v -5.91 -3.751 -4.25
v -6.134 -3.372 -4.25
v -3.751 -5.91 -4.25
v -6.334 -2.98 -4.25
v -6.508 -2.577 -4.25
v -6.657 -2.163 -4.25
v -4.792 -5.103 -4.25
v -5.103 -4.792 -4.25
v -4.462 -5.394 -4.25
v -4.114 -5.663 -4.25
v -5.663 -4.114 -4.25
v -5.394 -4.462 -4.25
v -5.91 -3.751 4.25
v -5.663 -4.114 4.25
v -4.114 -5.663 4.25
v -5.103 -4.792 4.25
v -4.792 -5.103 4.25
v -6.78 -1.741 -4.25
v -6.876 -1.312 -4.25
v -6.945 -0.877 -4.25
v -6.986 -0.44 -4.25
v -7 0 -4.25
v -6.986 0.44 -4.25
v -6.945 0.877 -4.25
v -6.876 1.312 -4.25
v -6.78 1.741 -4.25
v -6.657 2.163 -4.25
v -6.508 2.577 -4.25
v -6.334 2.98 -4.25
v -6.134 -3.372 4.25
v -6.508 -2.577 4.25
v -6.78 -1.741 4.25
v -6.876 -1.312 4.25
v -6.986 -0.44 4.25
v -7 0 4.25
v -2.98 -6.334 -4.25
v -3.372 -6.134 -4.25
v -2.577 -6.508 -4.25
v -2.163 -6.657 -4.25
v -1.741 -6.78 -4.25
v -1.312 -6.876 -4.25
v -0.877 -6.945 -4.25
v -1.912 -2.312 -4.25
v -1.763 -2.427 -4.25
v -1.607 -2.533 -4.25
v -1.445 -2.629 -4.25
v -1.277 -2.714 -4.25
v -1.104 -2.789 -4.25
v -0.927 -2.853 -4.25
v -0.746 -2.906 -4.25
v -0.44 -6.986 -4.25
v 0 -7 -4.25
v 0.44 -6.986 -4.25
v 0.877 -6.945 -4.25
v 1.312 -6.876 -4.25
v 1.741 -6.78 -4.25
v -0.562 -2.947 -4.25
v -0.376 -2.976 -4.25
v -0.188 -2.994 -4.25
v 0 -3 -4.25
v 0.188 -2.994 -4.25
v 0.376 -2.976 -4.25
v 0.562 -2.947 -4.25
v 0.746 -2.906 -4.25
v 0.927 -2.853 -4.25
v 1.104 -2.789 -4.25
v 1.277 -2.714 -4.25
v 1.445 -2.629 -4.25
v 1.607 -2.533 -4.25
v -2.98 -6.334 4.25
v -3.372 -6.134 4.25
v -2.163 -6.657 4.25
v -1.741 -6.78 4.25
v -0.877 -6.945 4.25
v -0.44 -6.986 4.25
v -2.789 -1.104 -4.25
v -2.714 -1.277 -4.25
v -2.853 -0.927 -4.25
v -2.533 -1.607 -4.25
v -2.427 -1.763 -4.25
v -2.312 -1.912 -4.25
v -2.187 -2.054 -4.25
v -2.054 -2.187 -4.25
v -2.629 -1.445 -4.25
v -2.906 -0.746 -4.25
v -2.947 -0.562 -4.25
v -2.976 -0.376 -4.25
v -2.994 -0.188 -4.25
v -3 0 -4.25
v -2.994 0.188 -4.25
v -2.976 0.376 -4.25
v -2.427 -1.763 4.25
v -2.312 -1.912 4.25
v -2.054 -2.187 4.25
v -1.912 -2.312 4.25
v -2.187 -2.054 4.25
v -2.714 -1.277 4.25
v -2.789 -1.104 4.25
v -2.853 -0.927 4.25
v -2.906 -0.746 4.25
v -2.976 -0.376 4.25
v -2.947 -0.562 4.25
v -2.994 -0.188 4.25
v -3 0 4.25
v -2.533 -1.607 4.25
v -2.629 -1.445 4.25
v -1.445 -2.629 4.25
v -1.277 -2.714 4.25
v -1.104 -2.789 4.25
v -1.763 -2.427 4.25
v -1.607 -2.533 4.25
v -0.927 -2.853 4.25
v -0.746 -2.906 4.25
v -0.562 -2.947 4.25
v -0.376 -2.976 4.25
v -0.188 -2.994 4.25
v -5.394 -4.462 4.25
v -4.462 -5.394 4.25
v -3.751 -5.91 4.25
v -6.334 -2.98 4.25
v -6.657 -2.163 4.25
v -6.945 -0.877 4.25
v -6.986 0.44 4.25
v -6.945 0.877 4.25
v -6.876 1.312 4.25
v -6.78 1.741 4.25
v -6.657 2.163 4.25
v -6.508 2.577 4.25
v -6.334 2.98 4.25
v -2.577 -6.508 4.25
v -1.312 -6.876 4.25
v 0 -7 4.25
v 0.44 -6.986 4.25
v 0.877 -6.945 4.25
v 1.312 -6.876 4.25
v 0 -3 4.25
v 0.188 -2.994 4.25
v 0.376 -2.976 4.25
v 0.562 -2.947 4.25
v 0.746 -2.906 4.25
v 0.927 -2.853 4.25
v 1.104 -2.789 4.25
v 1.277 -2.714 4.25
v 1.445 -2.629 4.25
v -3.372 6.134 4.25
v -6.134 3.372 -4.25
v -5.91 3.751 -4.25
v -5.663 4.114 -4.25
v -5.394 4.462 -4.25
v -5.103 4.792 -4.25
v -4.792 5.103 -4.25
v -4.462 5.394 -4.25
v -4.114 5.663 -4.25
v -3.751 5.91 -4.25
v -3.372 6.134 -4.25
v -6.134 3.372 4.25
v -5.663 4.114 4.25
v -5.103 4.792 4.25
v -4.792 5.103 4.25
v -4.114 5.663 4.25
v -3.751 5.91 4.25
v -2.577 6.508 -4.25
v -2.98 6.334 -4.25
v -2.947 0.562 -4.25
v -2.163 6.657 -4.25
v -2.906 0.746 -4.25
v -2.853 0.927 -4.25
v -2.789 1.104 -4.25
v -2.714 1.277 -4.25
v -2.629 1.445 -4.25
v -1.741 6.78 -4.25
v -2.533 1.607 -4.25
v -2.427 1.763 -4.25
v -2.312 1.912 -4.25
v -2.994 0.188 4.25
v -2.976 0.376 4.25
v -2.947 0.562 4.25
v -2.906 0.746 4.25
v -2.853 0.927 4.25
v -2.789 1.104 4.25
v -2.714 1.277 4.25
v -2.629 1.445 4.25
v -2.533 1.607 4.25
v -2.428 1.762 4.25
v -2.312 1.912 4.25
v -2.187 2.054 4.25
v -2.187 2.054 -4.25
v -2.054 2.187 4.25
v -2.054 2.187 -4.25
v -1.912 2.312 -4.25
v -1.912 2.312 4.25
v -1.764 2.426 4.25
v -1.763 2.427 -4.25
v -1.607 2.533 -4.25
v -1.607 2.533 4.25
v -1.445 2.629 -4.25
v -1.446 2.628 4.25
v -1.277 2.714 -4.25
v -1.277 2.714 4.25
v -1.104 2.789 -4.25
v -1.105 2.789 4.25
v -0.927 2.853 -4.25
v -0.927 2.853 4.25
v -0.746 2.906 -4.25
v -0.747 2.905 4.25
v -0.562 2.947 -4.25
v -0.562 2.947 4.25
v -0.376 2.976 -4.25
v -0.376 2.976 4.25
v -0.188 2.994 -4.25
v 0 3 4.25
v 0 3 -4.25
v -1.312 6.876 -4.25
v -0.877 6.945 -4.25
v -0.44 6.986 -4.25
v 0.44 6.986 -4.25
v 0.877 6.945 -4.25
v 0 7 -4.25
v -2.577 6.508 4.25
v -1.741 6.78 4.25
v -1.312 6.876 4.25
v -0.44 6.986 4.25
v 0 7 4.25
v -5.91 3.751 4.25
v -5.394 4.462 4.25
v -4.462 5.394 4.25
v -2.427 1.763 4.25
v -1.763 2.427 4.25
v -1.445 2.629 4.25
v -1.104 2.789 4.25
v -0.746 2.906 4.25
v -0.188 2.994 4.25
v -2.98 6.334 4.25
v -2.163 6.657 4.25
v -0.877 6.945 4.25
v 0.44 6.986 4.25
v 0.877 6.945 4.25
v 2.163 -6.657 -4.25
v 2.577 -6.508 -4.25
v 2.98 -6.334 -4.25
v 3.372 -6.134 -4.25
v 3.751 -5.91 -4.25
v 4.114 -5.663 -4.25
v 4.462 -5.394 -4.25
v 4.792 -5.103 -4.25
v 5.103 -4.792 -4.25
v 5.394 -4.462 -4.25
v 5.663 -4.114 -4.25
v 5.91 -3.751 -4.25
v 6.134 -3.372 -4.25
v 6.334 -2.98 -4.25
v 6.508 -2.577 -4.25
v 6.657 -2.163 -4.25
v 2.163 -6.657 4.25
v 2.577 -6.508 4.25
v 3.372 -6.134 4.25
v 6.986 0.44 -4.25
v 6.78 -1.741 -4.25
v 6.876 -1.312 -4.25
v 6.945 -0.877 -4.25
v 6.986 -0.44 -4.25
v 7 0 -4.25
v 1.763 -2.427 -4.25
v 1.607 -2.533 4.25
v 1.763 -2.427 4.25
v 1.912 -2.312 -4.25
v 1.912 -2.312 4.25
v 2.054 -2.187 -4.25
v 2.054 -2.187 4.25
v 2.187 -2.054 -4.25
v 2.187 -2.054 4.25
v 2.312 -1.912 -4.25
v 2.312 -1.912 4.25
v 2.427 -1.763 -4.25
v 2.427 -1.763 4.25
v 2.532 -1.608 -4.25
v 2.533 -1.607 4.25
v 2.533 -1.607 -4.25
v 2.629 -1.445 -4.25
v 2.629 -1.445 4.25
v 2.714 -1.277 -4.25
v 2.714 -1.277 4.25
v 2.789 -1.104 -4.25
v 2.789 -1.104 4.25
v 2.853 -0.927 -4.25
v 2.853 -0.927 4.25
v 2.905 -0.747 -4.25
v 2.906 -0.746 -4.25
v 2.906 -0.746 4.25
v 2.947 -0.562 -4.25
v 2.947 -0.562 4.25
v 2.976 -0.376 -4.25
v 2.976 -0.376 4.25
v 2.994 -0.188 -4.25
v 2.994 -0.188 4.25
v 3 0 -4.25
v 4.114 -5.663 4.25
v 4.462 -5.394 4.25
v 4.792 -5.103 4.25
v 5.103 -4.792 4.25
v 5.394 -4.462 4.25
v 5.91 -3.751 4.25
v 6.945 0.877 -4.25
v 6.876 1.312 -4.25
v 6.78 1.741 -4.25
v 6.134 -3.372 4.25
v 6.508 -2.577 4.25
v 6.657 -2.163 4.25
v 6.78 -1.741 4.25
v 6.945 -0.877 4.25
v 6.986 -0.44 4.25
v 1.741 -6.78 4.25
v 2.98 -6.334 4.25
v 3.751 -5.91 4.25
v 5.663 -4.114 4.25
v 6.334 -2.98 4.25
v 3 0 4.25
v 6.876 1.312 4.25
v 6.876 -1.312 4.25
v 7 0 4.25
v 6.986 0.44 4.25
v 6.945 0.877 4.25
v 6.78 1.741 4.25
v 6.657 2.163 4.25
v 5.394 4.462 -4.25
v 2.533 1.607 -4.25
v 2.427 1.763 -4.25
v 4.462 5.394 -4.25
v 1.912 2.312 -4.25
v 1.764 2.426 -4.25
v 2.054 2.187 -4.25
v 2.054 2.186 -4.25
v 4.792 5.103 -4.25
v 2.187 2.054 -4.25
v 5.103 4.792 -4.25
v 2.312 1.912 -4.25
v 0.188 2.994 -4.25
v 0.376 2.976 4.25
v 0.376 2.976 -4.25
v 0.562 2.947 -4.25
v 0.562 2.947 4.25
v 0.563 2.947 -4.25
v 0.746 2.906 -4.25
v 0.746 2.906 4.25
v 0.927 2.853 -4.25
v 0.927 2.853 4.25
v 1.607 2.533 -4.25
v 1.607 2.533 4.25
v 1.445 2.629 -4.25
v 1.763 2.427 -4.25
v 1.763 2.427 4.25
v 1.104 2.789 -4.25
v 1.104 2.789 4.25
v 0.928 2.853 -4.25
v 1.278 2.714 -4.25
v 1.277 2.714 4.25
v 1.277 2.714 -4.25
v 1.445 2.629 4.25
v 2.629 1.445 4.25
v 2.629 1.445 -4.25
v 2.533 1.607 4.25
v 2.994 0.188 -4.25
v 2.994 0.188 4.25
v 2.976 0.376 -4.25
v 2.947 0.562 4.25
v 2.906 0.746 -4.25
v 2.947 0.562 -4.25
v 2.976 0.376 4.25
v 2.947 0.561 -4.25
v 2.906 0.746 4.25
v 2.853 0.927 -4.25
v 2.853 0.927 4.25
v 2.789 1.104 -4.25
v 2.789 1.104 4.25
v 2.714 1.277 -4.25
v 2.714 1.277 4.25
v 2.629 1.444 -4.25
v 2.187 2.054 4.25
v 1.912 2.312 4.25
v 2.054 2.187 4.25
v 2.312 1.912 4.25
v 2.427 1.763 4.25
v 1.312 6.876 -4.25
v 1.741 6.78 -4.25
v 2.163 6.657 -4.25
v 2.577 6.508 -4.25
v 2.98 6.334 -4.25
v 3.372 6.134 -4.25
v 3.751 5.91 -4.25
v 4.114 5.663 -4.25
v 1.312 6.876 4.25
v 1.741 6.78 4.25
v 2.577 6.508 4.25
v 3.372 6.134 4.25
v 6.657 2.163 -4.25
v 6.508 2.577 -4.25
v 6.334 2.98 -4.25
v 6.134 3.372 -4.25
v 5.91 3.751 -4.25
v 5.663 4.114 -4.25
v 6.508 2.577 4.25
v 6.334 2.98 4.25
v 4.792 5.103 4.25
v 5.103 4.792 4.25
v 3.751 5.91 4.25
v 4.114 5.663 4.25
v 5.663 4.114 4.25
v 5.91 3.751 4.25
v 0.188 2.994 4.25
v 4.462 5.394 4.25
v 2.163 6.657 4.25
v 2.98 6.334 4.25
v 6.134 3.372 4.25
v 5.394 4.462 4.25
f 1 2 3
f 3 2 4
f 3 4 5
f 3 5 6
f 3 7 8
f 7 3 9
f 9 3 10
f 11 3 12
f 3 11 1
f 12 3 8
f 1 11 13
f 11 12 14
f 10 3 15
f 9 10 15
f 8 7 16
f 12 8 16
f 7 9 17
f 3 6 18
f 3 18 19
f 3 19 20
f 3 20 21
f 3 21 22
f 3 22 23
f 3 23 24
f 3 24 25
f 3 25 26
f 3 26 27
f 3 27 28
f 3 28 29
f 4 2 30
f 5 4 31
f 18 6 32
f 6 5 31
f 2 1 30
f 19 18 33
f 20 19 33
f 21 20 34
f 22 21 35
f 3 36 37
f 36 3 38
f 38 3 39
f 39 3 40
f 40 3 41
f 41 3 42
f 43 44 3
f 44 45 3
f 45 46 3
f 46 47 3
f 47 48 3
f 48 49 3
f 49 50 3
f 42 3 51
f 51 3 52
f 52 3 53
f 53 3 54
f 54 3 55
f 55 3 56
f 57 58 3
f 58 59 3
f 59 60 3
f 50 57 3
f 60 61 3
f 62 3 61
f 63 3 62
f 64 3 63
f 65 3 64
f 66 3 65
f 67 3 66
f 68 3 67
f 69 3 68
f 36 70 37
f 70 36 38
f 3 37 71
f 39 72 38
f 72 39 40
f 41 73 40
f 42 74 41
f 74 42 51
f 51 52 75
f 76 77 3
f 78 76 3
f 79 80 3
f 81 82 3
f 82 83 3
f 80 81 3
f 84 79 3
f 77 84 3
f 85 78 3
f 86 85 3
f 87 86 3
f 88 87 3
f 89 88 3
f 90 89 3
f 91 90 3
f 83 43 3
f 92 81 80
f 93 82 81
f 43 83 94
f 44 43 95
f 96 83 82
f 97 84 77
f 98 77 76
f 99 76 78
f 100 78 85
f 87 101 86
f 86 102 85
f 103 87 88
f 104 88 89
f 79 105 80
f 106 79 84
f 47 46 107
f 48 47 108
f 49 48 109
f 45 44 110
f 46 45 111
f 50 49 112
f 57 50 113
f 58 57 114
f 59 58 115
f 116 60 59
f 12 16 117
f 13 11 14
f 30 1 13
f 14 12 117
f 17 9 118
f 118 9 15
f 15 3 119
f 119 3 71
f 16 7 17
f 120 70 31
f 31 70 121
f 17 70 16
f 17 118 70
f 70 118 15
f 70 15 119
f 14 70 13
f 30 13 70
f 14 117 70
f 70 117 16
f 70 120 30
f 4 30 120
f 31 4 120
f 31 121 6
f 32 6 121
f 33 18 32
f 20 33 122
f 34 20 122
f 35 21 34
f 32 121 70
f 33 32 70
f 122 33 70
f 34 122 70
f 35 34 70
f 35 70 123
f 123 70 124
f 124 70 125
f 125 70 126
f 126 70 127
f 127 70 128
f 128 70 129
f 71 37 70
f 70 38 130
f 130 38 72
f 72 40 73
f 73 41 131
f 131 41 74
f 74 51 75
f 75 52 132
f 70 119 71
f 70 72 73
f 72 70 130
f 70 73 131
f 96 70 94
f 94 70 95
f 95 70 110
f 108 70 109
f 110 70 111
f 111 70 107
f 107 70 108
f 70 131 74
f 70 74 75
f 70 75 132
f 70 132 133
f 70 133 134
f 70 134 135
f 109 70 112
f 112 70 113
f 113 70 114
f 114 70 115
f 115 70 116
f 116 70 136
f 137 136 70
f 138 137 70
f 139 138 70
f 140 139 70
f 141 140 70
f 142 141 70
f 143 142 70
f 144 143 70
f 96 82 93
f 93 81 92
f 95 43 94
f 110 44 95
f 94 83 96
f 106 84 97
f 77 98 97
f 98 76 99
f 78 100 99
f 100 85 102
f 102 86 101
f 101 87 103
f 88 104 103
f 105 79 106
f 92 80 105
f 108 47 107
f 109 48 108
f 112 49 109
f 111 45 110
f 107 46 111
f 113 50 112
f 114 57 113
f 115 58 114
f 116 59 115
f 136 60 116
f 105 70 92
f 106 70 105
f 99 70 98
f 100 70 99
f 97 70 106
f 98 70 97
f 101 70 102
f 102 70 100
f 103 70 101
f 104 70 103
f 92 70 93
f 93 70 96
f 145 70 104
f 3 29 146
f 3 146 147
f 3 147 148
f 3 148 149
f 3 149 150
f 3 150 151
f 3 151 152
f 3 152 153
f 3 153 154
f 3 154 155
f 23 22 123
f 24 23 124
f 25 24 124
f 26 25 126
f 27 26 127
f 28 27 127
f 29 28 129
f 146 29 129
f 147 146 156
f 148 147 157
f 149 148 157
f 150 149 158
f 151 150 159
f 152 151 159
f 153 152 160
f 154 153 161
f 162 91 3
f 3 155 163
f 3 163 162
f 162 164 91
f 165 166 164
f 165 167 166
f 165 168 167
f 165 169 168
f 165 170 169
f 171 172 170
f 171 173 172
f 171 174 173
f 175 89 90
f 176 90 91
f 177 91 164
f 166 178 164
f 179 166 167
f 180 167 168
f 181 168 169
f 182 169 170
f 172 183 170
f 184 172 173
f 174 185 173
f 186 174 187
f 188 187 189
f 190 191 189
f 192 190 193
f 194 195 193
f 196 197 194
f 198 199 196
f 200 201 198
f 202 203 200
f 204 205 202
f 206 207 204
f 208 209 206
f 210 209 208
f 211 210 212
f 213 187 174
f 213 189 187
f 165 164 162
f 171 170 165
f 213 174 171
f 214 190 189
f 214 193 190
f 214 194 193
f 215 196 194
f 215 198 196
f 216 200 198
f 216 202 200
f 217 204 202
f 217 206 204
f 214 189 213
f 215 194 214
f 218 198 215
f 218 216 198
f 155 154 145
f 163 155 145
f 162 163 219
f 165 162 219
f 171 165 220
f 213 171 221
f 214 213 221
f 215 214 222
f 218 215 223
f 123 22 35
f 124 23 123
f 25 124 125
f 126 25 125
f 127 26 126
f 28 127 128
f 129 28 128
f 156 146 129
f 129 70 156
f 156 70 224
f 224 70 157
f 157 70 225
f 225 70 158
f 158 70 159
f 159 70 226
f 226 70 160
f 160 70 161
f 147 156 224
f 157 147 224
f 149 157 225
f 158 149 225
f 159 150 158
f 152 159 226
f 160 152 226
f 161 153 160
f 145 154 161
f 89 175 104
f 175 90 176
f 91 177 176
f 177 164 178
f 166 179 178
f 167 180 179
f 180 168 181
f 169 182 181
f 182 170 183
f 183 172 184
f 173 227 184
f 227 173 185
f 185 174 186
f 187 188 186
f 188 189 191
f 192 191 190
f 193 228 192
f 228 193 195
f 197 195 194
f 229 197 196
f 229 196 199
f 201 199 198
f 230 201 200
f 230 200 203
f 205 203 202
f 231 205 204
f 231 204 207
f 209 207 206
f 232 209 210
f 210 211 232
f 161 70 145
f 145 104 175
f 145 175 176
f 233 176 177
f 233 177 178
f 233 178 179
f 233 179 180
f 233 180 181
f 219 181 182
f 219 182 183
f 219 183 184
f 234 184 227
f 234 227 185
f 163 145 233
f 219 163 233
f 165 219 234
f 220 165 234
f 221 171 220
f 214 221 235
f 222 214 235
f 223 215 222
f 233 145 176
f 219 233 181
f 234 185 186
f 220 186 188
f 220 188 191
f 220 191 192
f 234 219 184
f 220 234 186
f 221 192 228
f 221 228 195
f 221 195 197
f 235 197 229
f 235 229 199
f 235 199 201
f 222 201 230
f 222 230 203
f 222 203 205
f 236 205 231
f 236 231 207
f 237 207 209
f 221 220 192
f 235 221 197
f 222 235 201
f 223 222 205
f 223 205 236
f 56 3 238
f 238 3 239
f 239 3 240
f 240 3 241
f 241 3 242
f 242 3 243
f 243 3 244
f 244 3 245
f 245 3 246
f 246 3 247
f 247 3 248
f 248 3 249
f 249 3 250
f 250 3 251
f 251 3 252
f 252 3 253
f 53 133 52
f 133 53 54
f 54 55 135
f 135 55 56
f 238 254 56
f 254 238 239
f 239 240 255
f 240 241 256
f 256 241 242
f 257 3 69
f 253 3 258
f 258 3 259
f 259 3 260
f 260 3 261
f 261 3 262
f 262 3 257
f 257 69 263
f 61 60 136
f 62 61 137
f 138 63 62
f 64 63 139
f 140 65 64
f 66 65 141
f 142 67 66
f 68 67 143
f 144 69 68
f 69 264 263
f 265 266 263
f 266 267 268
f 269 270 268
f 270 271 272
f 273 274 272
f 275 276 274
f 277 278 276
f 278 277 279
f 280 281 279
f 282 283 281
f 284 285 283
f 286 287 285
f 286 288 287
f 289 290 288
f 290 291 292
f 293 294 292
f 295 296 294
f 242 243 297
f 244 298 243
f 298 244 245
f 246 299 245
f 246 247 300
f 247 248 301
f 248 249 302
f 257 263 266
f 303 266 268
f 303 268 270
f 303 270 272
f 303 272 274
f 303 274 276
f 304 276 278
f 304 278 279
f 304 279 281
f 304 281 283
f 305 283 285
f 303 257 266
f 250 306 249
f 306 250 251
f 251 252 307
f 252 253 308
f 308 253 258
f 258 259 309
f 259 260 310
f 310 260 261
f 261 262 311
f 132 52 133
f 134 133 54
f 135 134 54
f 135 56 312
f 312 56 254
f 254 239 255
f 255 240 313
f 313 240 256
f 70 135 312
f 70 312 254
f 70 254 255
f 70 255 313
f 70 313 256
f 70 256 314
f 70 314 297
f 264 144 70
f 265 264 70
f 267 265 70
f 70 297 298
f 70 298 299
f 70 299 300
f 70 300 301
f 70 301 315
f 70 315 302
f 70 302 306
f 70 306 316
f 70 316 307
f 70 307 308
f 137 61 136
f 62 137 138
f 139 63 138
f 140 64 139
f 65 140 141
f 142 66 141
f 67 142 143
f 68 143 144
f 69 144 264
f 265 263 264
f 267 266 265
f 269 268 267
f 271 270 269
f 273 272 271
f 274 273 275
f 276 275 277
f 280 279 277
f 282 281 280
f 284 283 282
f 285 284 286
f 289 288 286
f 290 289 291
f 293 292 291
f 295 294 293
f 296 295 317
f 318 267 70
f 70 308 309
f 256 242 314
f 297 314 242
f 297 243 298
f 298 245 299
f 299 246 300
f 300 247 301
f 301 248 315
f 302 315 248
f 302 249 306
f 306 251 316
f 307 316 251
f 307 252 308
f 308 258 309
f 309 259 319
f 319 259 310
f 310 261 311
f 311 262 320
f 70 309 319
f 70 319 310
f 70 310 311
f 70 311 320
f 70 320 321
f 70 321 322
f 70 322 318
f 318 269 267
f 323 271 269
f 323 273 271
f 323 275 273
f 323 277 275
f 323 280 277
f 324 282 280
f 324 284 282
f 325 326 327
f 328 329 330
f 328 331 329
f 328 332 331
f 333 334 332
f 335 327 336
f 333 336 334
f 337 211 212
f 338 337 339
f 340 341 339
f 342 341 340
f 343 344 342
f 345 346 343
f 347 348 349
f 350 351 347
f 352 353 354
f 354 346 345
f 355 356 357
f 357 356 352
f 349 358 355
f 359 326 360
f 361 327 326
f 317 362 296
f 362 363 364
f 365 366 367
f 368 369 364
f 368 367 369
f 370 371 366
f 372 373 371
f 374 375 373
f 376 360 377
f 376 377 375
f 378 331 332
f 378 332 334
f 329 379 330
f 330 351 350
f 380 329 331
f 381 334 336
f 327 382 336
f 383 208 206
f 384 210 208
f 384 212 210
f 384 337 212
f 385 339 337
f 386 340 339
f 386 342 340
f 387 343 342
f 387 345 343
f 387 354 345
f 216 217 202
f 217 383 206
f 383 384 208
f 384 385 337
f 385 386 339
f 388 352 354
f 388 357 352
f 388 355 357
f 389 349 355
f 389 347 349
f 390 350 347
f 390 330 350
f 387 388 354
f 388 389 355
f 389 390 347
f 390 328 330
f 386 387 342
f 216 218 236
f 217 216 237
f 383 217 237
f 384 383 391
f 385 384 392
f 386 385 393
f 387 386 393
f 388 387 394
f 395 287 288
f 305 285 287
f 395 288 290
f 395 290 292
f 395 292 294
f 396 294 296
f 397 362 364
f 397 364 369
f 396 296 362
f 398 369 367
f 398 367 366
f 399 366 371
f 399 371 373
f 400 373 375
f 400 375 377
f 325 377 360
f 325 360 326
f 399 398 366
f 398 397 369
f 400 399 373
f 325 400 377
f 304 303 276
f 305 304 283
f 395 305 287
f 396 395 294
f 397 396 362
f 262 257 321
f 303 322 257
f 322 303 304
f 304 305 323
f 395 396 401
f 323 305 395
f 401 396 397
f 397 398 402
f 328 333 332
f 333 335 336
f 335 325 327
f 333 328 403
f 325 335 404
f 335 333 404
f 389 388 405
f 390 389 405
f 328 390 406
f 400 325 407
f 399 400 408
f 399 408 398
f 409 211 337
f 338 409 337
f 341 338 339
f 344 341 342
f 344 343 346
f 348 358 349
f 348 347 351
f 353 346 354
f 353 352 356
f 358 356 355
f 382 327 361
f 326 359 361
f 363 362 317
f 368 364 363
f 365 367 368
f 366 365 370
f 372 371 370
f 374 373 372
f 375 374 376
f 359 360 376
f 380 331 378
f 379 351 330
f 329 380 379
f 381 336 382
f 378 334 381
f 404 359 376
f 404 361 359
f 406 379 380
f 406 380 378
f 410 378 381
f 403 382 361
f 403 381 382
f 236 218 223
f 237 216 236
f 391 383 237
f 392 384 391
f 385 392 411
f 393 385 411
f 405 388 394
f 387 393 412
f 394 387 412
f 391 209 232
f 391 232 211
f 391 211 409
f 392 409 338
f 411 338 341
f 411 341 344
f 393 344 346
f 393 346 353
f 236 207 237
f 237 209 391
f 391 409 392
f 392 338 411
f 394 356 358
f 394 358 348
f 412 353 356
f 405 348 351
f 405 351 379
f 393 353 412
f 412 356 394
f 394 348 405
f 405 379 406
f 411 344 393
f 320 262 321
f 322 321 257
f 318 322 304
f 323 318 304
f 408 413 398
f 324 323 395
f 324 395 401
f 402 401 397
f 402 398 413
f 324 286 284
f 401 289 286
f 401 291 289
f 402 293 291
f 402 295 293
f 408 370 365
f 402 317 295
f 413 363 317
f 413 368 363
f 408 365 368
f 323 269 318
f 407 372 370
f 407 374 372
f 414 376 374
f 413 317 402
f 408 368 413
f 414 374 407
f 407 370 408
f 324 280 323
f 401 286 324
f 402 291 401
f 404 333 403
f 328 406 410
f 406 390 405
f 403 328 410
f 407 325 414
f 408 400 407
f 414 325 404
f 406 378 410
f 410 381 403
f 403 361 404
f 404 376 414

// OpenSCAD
/*
 * Pegboard Spacer.scad
 *
 */


$fn=100;

spacer_hole_diameter  = 6.0;
spacer_wall_thickness = 4.0;
spacer_height         = 8.5;

difference() {
    cylinder(d=spacer_hole_diameter+spacer_wall_thickness*2, h=spacer_height, center=true);
    cylinder(d=spacer_hole_diameter, h=spacer_height+0.1, center=true);
}
